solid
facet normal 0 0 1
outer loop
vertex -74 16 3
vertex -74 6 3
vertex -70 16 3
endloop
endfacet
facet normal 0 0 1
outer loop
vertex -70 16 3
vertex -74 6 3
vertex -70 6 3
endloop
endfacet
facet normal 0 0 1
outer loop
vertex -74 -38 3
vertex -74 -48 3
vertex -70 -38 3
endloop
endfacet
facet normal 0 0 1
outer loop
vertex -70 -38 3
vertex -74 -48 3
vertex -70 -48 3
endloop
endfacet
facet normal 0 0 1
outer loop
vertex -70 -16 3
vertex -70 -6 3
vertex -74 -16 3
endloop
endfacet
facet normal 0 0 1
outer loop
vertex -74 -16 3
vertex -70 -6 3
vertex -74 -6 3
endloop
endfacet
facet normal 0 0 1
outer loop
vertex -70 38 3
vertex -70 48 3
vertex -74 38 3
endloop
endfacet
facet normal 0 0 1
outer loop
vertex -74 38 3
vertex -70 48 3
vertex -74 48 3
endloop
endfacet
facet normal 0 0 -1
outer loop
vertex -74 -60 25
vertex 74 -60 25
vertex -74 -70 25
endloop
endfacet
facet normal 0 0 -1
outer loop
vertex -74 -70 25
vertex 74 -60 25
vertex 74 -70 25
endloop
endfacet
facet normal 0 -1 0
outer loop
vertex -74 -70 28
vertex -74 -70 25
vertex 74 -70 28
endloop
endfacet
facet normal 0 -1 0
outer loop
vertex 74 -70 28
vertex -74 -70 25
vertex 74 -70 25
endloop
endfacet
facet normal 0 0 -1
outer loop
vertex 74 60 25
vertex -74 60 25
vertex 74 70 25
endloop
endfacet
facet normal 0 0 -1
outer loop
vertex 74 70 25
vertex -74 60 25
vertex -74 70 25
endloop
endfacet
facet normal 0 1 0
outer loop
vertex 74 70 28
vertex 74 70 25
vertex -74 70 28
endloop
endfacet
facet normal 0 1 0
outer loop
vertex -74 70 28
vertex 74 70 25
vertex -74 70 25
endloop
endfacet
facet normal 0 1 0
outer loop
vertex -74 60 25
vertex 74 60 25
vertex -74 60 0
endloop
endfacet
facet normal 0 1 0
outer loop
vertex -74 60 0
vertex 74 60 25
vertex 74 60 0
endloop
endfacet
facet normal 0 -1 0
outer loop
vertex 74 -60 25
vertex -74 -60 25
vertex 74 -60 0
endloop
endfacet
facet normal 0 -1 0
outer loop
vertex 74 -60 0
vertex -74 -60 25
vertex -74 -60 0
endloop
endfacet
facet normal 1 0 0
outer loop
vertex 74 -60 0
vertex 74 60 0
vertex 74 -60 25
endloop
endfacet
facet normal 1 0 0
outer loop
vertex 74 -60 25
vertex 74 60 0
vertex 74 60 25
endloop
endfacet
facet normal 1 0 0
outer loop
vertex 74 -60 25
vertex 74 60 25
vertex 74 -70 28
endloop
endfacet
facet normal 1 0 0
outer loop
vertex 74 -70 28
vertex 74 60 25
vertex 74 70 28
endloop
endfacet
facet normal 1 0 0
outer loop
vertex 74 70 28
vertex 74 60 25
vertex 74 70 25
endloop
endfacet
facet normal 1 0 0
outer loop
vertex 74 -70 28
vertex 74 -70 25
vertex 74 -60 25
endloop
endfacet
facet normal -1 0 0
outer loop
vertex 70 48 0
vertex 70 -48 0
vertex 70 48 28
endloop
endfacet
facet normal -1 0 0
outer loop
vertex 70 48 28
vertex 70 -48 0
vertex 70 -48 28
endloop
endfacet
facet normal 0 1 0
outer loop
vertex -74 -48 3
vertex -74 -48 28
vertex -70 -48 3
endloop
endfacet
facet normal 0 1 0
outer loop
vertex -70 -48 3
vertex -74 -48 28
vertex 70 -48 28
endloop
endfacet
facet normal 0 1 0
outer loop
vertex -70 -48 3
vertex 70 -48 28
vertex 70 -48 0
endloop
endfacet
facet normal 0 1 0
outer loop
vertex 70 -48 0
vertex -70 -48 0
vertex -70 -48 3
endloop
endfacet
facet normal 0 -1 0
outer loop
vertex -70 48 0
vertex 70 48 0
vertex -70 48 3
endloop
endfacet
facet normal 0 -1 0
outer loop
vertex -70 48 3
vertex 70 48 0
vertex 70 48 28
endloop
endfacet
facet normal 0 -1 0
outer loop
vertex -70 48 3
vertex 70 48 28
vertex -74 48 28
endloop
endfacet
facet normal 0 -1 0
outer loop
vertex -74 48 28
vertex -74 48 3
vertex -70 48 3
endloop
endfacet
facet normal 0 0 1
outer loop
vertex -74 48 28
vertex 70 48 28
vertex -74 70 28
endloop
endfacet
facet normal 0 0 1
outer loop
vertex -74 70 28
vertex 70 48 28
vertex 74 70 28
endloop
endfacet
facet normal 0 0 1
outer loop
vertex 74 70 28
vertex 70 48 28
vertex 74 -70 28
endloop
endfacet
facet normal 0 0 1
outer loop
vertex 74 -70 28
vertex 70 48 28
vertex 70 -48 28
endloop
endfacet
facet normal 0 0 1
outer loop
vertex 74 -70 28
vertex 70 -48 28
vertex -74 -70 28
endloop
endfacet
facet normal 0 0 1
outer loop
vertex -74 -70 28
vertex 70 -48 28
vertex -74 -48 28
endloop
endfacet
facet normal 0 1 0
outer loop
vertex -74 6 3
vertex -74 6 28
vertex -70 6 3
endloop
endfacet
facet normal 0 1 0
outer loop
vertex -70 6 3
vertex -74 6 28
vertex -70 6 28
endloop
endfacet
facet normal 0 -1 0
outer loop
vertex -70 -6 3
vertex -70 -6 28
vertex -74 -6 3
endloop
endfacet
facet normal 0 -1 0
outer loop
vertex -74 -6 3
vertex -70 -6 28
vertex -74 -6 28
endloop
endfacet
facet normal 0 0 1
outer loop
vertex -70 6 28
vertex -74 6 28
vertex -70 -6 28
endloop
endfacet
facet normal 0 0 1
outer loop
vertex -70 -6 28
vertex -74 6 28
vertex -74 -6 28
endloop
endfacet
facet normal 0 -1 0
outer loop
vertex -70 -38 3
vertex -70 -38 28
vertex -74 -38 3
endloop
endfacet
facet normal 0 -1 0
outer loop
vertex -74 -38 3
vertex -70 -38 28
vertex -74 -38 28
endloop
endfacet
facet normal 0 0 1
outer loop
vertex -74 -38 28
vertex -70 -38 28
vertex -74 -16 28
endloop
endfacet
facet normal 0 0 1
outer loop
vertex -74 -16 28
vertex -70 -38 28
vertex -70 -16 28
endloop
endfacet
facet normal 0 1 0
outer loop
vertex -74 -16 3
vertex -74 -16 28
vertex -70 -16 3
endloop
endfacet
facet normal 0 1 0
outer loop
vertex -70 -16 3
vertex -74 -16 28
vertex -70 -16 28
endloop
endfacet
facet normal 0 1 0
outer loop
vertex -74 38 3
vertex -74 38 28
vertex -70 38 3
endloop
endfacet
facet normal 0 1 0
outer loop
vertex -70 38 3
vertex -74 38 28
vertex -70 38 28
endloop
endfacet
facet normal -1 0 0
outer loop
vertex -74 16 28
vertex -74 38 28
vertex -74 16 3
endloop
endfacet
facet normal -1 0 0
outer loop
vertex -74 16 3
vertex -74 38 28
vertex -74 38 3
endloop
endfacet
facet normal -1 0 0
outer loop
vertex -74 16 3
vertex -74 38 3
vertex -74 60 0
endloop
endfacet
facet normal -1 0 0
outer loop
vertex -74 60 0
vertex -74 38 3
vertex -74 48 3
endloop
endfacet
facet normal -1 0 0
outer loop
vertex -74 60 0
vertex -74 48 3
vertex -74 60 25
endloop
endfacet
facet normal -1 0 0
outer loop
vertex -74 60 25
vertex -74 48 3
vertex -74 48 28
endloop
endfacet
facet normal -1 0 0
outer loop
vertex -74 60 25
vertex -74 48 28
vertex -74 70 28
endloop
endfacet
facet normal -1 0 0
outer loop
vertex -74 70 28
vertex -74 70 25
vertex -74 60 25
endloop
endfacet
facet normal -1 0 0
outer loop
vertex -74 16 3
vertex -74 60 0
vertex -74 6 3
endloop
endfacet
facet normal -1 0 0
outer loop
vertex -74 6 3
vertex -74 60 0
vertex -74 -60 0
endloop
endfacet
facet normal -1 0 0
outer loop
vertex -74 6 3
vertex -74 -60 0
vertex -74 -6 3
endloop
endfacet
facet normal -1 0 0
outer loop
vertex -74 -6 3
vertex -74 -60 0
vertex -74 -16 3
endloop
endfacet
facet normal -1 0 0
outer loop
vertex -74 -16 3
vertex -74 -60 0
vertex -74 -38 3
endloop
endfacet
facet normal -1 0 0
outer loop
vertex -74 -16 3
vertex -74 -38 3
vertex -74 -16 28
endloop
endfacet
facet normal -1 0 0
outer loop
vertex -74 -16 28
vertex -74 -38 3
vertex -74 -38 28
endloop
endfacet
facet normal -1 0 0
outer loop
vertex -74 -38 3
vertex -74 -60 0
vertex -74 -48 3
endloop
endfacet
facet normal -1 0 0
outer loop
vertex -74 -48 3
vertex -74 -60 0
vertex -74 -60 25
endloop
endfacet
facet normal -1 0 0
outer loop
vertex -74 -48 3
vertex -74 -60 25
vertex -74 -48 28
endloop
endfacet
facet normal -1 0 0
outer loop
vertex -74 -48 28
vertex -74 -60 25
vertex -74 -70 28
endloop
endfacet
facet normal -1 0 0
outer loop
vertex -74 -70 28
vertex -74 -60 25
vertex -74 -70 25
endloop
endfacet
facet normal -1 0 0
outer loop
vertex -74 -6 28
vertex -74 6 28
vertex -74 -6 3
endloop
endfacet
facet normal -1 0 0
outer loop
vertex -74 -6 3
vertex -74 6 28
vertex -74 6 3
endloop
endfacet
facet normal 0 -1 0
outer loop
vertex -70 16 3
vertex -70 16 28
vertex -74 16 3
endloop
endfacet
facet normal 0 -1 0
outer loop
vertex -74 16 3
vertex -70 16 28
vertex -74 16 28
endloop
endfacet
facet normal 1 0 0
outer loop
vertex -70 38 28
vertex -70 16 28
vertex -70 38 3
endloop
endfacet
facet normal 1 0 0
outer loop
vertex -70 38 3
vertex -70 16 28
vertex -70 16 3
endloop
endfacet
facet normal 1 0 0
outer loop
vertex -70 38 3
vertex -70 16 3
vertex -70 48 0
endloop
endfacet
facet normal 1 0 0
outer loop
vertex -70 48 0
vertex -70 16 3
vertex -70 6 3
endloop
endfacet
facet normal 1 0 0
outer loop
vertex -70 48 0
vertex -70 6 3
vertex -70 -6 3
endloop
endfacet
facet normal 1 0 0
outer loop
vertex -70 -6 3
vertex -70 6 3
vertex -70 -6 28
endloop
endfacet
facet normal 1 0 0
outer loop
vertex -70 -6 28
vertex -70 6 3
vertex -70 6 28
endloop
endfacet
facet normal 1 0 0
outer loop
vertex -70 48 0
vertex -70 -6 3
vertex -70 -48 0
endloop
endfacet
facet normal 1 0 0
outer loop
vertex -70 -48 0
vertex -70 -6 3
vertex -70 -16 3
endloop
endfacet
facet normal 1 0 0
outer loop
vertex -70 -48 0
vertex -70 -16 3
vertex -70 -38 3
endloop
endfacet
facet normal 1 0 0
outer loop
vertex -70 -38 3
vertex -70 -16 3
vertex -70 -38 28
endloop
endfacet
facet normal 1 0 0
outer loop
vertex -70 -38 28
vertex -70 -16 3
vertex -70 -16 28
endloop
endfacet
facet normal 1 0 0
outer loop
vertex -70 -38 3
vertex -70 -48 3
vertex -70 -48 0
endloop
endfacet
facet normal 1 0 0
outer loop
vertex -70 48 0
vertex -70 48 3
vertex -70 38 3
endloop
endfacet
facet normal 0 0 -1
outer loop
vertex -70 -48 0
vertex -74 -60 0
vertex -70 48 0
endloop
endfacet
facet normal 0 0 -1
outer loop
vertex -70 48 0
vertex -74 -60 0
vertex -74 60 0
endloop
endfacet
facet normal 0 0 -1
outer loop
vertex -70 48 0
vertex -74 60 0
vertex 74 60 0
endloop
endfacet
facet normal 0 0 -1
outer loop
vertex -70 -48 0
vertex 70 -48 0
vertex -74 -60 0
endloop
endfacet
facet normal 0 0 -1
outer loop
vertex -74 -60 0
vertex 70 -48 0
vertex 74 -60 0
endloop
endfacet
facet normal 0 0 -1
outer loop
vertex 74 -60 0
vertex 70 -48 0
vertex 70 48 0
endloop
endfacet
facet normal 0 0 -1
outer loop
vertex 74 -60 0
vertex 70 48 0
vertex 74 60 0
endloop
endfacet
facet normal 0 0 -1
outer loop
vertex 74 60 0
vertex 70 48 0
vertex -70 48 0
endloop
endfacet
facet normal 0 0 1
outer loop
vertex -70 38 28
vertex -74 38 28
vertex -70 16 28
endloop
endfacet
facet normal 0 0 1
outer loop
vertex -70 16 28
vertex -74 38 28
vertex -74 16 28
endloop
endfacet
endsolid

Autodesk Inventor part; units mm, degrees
ref_plane "YZ Plane" through (0, 0, 0) normal (1, 0, 0) x (0, 1, 0)
ref_plane "XZ Plane" through (0, 0, 0) normal (0, 1, 0) x (-1, 0, 0)
ref_plane "XY Plane" through (0, 0, 0) normal (0, 0, 1) x (1, 0, 0)
sketch "Esquisse1" plane through (0, 0, 0) normal (0, 0, 1) x (1, 0, 0)
  line L0 (-70, 48) -> (70, 48)
  line L1 (70, 48) -> (70, -48)
  line L2 (70, -48) -> (-70, -48)
  line L3 (-70, -48) -> (-70, 48)
  line L4 (74, -60) -> (-74, -60)
  line L5 (-74, -60) -> (-74, 60)
  line L6 (-74, 60) -> (74, 60)
  line L7 (74, 60) -> (74, -60)
  line L8 (74, -60) -> (-74, 60) construction
  line L9 (-74, -60) -> (74, 60) construction
  point P0 (0, 0)
  dimension "d0" = 48
  dimension "d1" = 48
  dimension "d2" = 70
  dimension "d3" = 70
  dimension "d4" = 60
  dimension "d5" = 74
extrude "Extrusion1" add sketch "Esquisse1" along normal blind 28
sketch "Esquisse3" plane through (-74, -60, 28) normal (-1, 0, 0) x (0, 0, 1)
  line L0 (-28, 108) -> (0, 108) projected
  line L1 (-28, 48) -> (-28, 4) projected
  line L2 (0, 108) -> (-28, 108)
  line L3 (-28, 108) -> (-28, 98)
  line L4 (-28, 98) -> (0, 98)
  line L5 (0, 98) -> (0, 108)
  line L6 (-28, 12) -> (0, 12) projected
  line L7 (0, 12) -> (-28, 12)
  line L8 (-28, 12) -> (-28, 22)
  line L9 (-28, 22) -> (0, 22)
  line L10 (0, 22) -> (0, 12)
  line L11 (-28, 12) -> (-28, 108) projected
  line L12 (0, 12) -> (0, 108) projected
  line L13 (-28, 44) -> (0, 44)
  line L14 (0, 44) -> (0, 54)
  line L15 (0, 54) -> (-28, 54)
  line L16 (-28, 54) -> (-28, 44)
  line L17 (-28, 66) -> (0, 66)
  line L18 (0, 66) -> (0, 76)
  line L19 (0, 76) -> (-28, 76)
  line L20 (-28, 76) -> (-28, 66)
  point P0 (-28, 60)
  point P1 (0, 12)
  point P2 (-28, 22)
  point P3 (0, 66)
  point P4 (0, 44)
  dimension "d10" = 10
  dimension "d11" = 10
  dimension "d12" = 28
  dimension "d13" = 28
  dimension "d29" = 42
  dimension "d30" = 42
  dimension "d31" = 10
  dimension "d32" = 10
extrude "Extrusion3" cut sketch "Esquisse3" against normal blind 10 contours L0 L5 L4 L3 | L19 L12 L17 L11 | L15 L12 L13 L1 L11 | L10 L6 L1 L9
sketch "Esquisse4" plane through (-74, 60, 28) normal (0, 1, 0) x (1, 0, 0)
  line L0 (148, 28) -> (148, 0) projected
  line L1 (144, 0) -> (4, 0) projected
  line L2 (148, 3) -> (0, 3)
  line L3 (0, 3) -> (0, 0)
  line L4 (0, 0) -> (148, 0)
  line L5 (148, 0) -> (148, 3)
  point P0 (74, 28)
  point P1 (148, 31)
  point P2 (148, 0)
  dimension "d21" = 3
extrude "Extrusion4" add sketch "Esquisse4" along normal blind 10
sketch "Esquisse5" plane through (-74, -60, 28) normal (0, -1, 0) x (1, 0, 0)
  line L0 (0, 0) -> (144, 0) projected
  line L1 (148, -28) -> (148, -3) projected
  line L2 (0, 0) -> (148, 0)
  line L3 (148, 0) -> (148, -3)
  line L4 (148, -3) -> (0, -3)
  line L5 (0, -3) -> (0, 0)
  point P0 (74, -28)
  point P1 (148, -31)
  point P2 (4, 0)
  point P3 (4, 0)
  dimension "d22" = 3
extrude "Extrusion5" add sketch "Esquisse5" along normal blind 10
sketch "Esquisse6" plane through (-74, -38, 0) normal (-1, 0, 0) x (0, 0, 1)
  line L0 (0, 86) -> (28, 86) projected
  line L1 (0, -10) -> (28, -10) projected
  line L2 (0, -10) -> (0, -22) projected
  line L3 (0, -10) -> (3, -10)
  line L4 (3, -10) -> (3, 86)
  line L5 (3, 86) -> (0, 86)
  line L6 (0, 86) -> (0, -10)
  point P0 (0, 38)
  dimension "d28" = 3
extrude "Extrusion6" add sketch "Esquisse6" against normal blind 4
properties part number "Support_batterie"
